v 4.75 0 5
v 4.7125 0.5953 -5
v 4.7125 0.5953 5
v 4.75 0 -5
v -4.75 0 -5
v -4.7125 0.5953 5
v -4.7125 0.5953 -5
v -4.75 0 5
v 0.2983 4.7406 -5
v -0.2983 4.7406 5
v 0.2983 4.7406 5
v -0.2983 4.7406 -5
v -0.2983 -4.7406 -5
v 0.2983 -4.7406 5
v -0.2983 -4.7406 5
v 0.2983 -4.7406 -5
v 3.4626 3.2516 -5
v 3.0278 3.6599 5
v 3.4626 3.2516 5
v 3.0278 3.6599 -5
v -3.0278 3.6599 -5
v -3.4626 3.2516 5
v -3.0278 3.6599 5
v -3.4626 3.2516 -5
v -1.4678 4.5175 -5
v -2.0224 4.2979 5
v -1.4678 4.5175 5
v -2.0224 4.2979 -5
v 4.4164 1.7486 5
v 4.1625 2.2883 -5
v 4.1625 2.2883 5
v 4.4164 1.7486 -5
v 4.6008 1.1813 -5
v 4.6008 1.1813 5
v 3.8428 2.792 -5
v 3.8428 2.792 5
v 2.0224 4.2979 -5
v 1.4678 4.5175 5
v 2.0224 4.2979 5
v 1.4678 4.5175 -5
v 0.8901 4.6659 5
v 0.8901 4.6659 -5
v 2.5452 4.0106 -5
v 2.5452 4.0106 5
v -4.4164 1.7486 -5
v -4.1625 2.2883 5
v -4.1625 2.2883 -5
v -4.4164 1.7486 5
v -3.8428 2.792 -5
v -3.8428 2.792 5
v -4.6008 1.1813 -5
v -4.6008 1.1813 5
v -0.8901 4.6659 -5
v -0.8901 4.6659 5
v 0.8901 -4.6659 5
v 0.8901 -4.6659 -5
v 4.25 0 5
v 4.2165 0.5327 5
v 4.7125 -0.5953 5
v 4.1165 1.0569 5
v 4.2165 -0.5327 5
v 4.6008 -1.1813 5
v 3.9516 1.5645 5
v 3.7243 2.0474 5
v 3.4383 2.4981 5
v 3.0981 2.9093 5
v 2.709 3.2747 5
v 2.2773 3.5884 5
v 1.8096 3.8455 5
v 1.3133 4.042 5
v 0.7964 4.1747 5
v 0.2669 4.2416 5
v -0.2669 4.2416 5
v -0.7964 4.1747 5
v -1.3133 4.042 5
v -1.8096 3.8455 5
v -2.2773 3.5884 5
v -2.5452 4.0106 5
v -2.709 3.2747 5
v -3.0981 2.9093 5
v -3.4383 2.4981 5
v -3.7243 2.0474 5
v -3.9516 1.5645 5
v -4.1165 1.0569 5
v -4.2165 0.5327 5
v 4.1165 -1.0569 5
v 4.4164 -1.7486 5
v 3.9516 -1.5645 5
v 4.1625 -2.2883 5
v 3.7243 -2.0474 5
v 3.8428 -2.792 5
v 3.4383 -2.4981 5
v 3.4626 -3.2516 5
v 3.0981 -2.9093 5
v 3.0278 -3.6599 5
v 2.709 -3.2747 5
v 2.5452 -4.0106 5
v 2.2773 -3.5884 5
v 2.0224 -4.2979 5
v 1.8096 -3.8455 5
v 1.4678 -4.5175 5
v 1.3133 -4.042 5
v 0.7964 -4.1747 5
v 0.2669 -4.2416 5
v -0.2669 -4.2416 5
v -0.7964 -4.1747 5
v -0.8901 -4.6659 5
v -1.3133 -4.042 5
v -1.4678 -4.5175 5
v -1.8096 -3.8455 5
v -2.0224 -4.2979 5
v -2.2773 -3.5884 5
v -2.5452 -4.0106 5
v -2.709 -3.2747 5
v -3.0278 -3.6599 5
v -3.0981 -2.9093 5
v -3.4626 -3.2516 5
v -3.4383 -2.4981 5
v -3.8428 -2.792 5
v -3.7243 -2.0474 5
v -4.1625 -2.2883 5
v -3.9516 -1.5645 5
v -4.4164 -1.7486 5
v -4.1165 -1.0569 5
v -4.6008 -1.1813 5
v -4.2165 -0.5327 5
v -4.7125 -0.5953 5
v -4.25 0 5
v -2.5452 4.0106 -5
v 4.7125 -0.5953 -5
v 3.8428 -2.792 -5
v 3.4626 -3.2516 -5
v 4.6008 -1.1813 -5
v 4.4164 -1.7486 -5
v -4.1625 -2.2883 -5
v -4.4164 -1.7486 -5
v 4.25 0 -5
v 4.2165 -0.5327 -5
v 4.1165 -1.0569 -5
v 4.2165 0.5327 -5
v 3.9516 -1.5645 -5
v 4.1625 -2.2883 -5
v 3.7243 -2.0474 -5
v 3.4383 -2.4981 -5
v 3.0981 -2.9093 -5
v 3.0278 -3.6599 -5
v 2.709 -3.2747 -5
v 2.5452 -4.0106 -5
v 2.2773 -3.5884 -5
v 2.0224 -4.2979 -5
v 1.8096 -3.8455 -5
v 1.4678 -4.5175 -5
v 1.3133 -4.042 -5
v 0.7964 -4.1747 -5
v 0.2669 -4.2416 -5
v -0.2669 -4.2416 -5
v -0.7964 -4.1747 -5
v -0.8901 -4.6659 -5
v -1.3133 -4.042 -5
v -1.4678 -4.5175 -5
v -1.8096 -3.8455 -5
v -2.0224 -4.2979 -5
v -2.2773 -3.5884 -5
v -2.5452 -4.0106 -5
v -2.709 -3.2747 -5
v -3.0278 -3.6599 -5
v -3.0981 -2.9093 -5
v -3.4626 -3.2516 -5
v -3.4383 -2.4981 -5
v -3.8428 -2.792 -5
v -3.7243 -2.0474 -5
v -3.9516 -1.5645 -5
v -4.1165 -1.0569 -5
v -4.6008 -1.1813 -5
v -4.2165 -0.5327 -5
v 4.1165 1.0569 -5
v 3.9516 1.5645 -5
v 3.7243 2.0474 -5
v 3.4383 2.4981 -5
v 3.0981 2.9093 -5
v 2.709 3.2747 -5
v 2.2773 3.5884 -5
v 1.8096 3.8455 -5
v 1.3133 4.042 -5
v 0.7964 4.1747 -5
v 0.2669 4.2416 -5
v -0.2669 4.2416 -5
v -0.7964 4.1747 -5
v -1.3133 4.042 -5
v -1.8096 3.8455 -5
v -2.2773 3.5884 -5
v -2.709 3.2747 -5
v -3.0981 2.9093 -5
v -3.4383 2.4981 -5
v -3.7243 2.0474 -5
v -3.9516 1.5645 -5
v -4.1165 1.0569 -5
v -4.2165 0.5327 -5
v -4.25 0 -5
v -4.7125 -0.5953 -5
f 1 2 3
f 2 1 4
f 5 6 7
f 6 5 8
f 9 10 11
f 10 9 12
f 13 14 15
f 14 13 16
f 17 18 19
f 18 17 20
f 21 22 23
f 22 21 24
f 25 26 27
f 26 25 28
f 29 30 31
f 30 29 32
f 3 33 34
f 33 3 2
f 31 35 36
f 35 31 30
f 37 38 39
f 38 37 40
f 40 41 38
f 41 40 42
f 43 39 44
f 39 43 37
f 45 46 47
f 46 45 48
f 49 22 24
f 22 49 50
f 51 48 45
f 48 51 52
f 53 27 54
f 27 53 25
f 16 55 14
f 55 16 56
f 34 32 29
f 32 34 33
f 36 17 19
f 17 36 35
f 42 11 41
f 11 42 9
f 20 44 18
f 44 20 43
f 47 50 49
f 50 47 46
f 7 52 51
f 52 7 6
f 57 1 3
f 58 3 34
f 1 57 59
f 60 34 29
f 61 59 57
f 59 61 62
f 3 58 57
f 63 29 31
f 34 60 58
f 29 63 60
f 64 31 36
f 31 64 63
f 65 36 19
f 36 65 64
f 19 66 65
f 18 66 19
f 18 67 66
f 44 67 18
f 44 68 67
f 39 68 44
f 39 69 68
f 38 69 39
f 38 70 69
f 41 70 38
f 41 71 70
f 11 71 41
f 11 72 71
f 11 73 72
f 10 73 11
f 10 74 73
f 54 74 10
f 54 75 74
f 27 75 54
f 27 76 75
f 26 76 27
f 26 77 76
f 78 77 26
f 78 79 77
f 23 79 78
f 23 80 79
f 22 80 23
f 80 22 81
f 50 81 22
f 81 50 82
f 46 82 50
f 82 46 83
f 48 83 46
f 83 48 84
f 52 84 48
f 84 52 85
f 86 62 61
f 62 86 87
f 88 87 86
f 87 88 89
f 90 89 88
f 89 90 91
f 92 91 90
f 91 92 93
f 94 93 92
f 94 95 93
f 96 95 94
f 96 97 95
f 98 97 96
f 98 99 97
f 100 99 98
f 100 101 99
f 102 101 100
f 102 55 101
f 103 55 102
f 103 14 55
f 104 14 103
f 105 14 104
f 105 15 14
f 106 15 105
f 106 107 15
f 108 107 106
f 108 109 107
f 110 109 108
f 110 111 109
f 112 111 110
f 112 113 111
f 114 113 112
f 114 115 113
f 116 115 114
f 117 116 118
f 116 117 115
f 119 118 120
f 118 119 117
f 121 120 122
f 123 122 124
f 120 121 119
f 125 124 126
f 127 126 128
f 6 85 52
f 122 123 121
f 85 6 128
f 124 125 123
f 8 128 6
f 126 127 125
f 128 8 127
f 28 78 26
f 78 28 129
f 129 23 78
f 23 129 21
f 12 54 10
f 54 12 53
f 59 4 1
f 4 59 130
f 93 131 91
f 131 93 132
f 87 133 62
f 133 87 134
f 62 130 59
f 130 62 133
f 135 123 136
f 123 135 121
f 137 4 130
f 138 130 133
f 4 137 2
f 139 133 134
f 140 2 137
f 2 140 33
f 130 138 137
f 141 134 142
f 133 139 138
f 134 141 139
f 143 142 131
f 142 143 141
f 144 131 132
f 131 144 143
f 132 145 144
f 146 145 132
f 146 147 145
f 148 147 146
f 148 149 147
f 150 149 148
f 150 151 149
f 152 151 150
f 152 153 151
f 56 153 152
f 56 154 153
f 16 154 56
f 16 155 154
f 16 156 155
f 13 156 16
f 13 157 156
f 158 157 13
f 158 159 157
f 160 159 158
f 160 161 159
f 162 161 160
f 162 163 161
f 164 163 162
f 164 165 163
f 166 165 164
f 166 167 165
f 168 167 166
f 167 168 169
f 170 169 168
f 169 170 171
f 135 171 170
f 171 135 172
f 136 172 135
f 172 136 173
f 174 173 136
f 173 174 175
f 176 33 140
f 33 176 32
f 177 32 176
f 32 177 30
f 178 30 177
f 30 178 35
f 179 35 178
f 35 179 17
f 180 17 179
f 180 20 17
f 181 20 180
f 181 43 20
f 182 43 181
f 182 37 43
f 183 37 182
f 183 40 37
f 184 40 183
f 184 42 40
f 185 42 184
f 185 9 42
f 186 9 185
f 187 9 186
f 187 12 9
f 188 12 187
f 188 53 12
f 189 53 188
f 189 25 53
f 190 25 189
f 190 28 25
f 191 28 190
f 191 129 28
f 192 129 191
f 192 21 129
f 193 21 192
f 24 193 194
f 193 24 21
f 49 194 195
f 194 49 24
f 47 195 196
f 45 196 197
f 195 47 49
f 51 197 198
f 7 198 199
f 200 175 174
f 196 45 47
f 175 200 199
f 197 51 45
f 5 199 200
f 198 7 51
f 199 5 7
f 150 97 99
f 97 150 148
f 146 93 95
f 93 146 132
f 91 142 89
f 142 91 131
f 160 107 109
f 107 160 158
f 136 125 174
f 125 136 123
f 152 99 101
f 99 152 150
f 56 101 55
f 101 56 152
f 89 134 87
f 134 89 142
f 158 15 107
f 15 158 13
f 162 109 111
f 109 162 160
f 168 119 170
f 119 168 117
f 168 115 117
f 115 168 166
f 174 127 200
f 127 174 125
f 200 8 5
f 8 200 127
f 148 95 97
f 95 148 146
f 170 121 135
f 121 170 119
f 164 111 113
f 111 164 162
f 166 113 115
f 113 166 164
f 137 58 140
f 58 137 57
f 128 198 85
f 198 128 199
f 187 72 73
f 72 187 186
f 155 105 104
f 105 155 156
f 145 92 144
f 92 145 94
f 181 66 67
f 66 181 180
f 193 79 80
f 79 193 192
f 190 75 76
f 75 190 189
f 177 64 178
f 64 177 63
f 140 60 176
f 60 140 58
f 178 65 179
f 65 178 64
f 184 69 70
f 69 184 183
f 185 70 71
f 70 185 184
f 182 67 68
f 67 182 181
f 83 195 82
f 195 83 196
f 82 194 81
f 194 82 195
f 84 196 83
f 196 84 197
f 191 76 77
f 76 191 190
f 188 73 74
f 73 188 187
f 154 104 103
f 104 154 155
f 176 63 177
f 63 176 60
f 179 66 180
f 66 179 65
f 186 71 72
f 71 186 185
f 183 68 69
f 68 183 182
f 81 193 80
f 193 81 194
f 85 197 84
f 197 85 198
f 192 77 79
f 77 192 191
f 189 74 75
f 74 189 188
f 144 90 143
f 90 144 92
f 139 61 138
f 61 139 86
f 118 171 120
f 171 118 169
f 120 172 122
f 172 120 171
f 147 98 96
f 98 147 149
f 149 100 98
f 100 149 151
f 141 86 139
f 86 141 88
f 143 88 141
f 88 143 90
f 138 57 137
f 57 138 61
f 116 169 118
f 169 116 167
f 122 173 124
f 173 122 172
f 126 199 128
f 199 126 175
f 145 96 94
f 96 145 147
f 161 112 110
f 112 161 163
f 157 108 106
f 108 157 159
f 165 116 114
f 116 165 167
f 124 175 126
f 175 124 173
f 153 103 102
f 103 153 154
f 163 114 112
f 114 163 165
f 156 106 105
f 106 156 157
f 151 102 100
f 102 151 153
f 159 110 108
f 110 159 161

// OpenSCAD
$fn = 50;


difference() {
	union() {
		translate(v = [0, 0, -5.0000000000]) {
			cylinder(h = 10, r = 4.7500000000);
		}
	}
	union() {
		translate(v = [0, 0, -100.0000000000]) {
			cylinder(h = 200, r = 4.2500000000);
		}
	}
}
